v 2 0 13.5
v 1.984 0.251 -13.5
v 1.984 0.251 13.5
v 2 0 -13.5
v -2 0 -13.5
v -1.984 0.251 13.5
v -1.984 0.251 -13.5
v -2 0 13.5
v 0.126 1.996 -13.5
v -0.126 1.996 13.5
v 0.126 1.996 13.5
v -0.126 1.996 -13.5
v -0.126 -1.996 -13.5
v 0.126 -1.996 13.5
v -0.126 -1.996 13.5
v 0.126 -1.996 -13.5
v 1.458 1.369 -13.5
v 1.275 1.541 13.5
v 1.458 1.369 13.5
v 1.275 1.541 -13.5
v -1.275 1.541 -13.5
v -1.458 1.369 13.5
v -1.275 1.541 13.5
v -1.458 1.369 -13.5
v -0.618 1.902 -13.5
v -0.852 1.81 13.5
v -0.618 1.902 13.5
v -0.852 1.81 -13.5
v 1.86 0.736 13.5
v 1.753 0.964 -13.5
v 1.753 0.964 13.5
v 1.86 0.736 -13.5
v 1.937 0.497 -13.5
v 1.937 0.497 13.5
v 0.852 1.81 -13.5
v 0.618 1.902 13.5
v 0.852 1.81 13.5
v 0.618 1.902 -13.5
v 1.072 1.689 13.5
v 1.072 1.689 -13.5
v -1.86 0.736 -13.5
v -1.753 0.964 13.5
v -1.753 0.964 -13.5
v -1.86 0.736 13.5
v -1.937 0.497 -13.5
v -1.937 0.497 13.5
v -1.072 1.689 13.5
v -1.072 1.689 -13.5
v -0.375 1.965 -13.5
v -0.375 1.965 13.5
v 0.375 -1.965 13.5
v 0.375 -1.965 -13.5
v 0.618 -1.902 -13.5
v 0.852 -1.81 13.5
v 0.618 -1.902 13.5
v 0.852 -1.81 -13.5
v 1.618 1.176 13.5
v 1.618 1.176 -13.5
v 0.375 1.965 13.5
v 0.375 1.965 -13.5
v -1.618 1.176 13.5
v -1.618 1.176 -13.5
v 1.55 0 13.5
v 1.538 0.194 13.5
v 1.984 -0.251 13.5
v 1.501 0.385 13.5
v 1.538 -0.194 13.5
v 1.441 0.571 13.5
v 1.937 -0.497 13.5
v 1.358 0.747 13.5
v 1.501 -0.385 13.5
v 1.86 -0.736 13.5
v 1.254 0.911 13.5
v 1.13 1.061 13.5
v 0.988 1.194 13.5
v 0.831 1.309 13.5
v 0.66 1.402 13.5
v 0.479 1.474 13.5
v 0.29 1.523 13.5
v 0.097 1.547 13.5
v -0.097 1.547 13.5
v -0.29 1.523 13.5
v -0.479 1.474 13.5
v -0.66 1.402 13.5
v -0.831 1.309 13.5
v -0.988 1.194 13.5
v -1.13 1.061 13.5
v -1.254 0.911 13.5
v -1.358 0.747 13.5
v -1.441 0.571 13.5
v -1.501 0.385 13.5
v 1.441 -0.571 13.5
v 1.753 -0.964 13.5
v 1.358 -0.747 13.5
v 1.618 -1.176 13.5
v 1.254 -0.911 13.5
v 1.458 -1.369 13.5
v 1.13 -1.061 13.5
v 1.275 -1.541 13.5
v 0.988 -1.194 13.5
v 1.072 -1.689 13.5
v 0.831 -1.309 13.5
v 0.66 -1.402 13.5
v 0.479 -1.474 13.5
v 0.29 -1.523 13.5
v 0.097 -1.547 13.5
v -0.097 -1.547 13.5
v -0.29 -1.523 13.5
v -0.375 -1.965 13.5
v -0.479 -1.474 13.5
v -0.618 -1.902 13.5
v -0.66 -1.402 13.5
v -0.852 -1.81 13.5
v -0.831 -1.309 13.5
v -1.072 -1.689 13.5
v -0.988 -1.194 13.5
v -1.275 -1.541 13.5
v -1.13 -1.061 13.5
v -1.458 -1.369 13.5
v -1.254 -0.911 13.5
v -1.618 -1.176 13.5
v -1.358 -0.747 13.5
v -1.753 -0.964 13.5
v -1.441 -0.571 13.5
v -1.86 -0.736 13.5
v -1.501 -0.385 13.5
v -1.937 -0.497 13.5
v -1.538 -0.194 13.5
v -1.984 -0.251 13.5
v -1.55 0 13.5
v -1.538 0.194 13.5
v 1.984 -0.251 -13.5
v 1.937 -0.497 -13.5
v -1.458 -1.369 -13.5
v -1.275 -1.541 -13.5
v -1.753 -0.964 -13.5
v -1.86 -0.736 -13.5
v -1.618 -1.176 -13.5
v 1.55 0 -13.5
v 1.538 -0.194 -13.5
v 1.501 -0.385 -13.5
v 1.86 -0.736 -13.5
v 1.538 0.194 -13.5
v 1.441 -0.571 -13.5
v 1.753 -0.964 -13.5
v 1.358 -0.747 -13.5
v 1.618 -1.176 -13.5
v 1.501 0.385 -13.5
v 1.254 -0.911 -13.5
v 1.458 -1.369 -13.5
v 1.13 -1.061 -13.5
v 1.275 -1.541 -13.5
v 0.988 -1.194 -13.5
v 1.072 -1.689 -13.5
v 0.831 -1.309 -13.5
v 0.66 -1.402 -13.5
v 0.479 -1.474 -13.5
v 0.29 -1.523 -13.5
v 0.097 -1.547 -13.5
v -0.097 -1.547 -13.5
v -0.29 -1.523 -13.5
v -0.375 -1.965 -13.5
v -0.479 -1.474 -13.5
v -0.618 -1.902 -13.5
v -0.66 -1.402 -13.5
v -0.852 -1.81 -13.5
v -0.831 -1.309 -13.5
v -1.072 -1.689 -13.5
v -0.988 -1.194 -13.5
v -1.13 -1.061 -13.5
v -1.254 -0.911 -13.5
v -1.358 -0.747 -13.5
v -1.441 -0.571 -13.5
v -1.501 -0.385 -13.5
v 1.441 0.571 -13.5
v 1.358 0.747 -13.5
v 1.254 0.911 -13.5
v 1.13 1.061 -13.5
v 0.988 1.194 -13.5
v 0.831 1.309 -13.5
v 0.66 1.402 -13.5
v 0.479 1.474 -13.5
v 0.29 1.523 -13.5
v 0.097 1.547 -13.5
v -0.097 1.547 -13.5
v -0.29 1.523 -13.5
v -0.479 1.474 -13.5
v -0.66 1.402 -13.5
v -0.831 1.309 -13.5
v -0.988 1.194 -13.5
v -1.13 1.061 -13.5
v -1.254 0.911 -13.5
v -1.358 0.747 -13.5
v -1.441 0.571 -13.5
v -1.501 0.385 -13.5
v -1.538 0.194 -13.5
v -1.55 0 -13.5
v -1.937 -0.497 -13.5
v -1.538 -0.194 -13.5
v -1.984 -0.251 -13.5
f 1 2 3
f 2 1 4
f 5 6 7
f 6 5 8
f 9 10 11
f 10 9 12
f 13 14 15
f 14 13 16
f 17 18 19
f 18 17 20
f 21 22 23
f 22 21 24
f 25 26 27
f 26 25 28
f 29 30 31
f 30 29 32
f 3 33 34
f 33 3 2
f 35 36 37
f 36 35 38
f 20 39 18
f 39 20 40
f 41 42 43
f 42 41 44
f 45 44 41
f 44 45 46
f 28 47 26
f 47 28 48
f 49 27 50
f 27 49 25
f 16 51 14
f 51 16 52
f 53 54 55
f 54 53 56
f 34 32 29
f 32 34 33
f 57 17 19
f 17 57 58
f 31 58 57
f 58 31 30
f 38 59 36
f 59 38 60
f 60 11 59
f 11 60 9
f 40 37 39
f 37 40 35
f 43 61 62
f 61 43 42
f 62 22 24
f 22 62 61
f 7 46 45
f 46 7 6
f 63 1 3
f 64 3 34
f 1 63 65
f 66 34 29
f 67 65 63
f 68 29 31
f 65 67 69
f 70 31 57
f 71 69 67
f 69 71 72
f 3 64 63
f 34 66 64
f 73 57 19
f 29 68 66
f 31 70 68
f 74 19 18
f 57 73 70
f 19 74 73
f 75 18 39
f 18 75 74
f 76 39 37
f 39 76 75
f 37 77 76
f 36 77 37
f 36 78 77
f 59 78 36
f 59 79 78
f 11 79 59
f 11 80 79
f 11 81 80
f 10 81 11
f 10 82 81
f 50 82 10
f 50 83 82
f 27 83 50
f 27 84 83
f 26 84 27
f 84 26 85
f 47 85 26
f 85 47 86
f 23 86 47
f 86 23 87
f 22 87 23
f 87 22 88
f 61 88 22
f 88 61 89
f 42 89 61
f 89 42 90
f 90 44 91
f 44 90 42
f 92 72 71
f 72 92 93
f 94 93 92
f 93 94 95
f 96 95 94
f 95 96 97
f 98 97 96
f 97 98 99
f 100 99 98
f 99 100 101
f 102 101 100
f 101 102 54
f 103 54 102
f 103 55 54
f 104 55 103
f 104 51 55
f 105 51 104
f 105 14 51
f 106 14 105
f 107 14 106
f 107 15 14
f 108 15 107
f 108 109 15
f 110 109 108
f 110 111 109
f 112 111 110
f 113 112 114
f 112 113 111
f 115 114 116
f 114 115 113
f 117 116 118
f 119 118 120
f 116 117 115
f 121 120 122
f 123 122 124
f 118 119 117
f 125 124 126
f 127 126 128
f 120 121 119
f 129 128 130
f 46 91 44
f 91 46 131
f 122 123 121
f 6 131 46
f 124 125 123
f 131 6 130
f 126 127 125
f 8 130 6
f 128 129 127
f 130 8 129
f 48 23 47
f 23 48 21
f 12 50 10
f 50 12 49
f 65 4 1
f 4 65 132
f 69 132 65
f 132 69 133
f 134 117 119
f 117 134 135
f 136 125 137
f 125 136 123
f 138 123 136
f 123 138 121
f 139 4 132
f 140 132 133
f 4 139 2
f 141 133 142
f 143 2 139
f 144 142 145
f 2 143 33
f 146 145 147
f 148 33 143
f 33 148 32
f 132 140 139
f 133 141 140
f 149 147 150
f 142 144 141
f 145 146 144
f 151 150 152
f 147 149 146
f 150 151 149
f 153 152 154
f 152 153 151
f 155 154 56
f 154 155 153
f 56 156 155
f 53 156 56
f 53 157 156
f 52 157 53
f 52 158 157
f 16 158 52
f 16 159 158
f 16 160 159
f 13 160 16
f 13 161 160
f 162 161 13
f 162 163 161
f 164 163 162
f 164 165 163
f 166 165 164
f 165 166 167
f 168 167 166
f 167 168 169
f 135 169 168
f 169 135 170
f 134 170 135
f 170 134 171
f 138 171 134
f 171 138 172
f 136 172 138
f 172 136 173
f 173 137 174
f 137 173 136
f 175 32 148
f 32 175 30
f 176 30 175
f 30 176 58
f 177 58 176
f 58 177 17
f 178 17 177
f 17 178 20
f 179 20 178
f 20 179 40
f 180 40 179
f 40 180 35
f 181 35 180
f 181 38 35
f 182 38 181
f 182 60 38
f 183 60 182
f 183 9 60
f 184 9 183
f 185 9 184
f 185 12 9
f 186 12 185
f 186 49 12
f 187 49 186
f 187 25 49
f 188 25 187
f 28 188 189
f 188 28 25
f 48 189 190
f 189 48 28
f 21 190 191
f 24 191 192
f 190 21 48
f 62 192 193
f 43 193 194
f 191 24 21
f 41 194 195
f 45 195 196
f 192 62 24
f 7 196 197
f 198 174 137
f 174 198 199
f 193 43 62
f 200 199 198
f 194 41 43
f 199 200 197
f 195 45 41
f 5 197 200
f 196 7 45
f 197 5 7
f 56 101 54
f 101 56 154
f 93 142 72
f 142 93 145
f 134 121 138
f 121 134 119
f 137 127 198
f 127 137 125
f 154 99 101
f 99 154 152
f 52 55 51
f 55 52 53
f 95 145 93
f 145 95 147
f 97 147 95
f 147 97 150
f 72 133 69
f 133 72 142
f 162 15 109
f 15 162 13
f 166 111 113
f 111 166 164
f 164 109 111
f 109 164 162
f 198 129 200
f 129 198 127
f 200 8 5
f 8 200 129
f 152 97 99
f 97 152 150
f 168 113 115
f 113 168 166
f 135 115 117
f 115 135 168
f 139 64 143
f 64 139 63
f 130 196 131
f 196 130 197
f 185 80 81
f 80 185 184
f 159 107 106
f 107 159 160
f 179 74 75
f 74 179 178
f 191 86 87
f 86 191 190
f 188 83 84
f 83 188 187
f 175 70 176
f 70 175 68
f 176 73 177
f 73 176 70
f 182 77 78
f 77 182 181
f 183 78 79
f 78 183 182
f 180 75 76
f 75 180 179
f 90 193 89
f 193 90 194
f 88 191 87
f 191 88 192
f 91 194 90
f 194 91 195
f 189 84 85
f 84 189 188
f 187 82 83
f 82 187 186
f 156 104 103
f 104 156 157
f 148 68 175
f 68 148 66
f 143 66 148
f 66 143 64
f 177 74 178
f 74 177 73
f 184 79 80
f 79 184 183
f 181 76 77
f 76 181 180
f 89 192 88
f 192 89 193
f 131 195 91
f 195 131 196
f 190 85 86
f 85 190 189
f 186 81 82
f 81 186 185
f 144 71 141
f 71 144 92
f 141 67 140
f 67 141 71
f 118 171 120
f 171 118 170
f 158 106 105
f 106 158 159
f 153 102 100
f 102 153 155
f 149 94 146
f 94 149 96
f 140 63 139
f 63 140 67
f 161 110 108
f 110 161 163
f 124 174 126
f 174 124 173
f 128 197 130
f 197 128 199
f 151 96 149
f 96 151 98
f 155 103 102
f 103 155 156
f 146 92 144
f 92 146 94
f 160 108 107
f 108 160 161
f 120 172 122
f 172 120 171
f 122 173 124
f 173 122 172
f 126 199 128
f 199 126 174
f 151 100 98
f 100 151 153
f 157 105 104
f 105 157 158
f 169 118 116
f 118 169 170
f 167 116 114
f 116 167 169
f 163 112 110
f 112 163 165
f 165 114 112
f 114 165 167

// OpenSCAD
$fn = 50;


difference() {
	union() {
		translate(v = [0, 0, -13.5000000000]) {
			cylinder(h = 27, r = 2.0000000000);
		}
	}
	union() {
		translate(v = [0, 0, -100.0000000000]) {
			cylinder(h = 200, r = 1.5500000000);
		}
	}
}
